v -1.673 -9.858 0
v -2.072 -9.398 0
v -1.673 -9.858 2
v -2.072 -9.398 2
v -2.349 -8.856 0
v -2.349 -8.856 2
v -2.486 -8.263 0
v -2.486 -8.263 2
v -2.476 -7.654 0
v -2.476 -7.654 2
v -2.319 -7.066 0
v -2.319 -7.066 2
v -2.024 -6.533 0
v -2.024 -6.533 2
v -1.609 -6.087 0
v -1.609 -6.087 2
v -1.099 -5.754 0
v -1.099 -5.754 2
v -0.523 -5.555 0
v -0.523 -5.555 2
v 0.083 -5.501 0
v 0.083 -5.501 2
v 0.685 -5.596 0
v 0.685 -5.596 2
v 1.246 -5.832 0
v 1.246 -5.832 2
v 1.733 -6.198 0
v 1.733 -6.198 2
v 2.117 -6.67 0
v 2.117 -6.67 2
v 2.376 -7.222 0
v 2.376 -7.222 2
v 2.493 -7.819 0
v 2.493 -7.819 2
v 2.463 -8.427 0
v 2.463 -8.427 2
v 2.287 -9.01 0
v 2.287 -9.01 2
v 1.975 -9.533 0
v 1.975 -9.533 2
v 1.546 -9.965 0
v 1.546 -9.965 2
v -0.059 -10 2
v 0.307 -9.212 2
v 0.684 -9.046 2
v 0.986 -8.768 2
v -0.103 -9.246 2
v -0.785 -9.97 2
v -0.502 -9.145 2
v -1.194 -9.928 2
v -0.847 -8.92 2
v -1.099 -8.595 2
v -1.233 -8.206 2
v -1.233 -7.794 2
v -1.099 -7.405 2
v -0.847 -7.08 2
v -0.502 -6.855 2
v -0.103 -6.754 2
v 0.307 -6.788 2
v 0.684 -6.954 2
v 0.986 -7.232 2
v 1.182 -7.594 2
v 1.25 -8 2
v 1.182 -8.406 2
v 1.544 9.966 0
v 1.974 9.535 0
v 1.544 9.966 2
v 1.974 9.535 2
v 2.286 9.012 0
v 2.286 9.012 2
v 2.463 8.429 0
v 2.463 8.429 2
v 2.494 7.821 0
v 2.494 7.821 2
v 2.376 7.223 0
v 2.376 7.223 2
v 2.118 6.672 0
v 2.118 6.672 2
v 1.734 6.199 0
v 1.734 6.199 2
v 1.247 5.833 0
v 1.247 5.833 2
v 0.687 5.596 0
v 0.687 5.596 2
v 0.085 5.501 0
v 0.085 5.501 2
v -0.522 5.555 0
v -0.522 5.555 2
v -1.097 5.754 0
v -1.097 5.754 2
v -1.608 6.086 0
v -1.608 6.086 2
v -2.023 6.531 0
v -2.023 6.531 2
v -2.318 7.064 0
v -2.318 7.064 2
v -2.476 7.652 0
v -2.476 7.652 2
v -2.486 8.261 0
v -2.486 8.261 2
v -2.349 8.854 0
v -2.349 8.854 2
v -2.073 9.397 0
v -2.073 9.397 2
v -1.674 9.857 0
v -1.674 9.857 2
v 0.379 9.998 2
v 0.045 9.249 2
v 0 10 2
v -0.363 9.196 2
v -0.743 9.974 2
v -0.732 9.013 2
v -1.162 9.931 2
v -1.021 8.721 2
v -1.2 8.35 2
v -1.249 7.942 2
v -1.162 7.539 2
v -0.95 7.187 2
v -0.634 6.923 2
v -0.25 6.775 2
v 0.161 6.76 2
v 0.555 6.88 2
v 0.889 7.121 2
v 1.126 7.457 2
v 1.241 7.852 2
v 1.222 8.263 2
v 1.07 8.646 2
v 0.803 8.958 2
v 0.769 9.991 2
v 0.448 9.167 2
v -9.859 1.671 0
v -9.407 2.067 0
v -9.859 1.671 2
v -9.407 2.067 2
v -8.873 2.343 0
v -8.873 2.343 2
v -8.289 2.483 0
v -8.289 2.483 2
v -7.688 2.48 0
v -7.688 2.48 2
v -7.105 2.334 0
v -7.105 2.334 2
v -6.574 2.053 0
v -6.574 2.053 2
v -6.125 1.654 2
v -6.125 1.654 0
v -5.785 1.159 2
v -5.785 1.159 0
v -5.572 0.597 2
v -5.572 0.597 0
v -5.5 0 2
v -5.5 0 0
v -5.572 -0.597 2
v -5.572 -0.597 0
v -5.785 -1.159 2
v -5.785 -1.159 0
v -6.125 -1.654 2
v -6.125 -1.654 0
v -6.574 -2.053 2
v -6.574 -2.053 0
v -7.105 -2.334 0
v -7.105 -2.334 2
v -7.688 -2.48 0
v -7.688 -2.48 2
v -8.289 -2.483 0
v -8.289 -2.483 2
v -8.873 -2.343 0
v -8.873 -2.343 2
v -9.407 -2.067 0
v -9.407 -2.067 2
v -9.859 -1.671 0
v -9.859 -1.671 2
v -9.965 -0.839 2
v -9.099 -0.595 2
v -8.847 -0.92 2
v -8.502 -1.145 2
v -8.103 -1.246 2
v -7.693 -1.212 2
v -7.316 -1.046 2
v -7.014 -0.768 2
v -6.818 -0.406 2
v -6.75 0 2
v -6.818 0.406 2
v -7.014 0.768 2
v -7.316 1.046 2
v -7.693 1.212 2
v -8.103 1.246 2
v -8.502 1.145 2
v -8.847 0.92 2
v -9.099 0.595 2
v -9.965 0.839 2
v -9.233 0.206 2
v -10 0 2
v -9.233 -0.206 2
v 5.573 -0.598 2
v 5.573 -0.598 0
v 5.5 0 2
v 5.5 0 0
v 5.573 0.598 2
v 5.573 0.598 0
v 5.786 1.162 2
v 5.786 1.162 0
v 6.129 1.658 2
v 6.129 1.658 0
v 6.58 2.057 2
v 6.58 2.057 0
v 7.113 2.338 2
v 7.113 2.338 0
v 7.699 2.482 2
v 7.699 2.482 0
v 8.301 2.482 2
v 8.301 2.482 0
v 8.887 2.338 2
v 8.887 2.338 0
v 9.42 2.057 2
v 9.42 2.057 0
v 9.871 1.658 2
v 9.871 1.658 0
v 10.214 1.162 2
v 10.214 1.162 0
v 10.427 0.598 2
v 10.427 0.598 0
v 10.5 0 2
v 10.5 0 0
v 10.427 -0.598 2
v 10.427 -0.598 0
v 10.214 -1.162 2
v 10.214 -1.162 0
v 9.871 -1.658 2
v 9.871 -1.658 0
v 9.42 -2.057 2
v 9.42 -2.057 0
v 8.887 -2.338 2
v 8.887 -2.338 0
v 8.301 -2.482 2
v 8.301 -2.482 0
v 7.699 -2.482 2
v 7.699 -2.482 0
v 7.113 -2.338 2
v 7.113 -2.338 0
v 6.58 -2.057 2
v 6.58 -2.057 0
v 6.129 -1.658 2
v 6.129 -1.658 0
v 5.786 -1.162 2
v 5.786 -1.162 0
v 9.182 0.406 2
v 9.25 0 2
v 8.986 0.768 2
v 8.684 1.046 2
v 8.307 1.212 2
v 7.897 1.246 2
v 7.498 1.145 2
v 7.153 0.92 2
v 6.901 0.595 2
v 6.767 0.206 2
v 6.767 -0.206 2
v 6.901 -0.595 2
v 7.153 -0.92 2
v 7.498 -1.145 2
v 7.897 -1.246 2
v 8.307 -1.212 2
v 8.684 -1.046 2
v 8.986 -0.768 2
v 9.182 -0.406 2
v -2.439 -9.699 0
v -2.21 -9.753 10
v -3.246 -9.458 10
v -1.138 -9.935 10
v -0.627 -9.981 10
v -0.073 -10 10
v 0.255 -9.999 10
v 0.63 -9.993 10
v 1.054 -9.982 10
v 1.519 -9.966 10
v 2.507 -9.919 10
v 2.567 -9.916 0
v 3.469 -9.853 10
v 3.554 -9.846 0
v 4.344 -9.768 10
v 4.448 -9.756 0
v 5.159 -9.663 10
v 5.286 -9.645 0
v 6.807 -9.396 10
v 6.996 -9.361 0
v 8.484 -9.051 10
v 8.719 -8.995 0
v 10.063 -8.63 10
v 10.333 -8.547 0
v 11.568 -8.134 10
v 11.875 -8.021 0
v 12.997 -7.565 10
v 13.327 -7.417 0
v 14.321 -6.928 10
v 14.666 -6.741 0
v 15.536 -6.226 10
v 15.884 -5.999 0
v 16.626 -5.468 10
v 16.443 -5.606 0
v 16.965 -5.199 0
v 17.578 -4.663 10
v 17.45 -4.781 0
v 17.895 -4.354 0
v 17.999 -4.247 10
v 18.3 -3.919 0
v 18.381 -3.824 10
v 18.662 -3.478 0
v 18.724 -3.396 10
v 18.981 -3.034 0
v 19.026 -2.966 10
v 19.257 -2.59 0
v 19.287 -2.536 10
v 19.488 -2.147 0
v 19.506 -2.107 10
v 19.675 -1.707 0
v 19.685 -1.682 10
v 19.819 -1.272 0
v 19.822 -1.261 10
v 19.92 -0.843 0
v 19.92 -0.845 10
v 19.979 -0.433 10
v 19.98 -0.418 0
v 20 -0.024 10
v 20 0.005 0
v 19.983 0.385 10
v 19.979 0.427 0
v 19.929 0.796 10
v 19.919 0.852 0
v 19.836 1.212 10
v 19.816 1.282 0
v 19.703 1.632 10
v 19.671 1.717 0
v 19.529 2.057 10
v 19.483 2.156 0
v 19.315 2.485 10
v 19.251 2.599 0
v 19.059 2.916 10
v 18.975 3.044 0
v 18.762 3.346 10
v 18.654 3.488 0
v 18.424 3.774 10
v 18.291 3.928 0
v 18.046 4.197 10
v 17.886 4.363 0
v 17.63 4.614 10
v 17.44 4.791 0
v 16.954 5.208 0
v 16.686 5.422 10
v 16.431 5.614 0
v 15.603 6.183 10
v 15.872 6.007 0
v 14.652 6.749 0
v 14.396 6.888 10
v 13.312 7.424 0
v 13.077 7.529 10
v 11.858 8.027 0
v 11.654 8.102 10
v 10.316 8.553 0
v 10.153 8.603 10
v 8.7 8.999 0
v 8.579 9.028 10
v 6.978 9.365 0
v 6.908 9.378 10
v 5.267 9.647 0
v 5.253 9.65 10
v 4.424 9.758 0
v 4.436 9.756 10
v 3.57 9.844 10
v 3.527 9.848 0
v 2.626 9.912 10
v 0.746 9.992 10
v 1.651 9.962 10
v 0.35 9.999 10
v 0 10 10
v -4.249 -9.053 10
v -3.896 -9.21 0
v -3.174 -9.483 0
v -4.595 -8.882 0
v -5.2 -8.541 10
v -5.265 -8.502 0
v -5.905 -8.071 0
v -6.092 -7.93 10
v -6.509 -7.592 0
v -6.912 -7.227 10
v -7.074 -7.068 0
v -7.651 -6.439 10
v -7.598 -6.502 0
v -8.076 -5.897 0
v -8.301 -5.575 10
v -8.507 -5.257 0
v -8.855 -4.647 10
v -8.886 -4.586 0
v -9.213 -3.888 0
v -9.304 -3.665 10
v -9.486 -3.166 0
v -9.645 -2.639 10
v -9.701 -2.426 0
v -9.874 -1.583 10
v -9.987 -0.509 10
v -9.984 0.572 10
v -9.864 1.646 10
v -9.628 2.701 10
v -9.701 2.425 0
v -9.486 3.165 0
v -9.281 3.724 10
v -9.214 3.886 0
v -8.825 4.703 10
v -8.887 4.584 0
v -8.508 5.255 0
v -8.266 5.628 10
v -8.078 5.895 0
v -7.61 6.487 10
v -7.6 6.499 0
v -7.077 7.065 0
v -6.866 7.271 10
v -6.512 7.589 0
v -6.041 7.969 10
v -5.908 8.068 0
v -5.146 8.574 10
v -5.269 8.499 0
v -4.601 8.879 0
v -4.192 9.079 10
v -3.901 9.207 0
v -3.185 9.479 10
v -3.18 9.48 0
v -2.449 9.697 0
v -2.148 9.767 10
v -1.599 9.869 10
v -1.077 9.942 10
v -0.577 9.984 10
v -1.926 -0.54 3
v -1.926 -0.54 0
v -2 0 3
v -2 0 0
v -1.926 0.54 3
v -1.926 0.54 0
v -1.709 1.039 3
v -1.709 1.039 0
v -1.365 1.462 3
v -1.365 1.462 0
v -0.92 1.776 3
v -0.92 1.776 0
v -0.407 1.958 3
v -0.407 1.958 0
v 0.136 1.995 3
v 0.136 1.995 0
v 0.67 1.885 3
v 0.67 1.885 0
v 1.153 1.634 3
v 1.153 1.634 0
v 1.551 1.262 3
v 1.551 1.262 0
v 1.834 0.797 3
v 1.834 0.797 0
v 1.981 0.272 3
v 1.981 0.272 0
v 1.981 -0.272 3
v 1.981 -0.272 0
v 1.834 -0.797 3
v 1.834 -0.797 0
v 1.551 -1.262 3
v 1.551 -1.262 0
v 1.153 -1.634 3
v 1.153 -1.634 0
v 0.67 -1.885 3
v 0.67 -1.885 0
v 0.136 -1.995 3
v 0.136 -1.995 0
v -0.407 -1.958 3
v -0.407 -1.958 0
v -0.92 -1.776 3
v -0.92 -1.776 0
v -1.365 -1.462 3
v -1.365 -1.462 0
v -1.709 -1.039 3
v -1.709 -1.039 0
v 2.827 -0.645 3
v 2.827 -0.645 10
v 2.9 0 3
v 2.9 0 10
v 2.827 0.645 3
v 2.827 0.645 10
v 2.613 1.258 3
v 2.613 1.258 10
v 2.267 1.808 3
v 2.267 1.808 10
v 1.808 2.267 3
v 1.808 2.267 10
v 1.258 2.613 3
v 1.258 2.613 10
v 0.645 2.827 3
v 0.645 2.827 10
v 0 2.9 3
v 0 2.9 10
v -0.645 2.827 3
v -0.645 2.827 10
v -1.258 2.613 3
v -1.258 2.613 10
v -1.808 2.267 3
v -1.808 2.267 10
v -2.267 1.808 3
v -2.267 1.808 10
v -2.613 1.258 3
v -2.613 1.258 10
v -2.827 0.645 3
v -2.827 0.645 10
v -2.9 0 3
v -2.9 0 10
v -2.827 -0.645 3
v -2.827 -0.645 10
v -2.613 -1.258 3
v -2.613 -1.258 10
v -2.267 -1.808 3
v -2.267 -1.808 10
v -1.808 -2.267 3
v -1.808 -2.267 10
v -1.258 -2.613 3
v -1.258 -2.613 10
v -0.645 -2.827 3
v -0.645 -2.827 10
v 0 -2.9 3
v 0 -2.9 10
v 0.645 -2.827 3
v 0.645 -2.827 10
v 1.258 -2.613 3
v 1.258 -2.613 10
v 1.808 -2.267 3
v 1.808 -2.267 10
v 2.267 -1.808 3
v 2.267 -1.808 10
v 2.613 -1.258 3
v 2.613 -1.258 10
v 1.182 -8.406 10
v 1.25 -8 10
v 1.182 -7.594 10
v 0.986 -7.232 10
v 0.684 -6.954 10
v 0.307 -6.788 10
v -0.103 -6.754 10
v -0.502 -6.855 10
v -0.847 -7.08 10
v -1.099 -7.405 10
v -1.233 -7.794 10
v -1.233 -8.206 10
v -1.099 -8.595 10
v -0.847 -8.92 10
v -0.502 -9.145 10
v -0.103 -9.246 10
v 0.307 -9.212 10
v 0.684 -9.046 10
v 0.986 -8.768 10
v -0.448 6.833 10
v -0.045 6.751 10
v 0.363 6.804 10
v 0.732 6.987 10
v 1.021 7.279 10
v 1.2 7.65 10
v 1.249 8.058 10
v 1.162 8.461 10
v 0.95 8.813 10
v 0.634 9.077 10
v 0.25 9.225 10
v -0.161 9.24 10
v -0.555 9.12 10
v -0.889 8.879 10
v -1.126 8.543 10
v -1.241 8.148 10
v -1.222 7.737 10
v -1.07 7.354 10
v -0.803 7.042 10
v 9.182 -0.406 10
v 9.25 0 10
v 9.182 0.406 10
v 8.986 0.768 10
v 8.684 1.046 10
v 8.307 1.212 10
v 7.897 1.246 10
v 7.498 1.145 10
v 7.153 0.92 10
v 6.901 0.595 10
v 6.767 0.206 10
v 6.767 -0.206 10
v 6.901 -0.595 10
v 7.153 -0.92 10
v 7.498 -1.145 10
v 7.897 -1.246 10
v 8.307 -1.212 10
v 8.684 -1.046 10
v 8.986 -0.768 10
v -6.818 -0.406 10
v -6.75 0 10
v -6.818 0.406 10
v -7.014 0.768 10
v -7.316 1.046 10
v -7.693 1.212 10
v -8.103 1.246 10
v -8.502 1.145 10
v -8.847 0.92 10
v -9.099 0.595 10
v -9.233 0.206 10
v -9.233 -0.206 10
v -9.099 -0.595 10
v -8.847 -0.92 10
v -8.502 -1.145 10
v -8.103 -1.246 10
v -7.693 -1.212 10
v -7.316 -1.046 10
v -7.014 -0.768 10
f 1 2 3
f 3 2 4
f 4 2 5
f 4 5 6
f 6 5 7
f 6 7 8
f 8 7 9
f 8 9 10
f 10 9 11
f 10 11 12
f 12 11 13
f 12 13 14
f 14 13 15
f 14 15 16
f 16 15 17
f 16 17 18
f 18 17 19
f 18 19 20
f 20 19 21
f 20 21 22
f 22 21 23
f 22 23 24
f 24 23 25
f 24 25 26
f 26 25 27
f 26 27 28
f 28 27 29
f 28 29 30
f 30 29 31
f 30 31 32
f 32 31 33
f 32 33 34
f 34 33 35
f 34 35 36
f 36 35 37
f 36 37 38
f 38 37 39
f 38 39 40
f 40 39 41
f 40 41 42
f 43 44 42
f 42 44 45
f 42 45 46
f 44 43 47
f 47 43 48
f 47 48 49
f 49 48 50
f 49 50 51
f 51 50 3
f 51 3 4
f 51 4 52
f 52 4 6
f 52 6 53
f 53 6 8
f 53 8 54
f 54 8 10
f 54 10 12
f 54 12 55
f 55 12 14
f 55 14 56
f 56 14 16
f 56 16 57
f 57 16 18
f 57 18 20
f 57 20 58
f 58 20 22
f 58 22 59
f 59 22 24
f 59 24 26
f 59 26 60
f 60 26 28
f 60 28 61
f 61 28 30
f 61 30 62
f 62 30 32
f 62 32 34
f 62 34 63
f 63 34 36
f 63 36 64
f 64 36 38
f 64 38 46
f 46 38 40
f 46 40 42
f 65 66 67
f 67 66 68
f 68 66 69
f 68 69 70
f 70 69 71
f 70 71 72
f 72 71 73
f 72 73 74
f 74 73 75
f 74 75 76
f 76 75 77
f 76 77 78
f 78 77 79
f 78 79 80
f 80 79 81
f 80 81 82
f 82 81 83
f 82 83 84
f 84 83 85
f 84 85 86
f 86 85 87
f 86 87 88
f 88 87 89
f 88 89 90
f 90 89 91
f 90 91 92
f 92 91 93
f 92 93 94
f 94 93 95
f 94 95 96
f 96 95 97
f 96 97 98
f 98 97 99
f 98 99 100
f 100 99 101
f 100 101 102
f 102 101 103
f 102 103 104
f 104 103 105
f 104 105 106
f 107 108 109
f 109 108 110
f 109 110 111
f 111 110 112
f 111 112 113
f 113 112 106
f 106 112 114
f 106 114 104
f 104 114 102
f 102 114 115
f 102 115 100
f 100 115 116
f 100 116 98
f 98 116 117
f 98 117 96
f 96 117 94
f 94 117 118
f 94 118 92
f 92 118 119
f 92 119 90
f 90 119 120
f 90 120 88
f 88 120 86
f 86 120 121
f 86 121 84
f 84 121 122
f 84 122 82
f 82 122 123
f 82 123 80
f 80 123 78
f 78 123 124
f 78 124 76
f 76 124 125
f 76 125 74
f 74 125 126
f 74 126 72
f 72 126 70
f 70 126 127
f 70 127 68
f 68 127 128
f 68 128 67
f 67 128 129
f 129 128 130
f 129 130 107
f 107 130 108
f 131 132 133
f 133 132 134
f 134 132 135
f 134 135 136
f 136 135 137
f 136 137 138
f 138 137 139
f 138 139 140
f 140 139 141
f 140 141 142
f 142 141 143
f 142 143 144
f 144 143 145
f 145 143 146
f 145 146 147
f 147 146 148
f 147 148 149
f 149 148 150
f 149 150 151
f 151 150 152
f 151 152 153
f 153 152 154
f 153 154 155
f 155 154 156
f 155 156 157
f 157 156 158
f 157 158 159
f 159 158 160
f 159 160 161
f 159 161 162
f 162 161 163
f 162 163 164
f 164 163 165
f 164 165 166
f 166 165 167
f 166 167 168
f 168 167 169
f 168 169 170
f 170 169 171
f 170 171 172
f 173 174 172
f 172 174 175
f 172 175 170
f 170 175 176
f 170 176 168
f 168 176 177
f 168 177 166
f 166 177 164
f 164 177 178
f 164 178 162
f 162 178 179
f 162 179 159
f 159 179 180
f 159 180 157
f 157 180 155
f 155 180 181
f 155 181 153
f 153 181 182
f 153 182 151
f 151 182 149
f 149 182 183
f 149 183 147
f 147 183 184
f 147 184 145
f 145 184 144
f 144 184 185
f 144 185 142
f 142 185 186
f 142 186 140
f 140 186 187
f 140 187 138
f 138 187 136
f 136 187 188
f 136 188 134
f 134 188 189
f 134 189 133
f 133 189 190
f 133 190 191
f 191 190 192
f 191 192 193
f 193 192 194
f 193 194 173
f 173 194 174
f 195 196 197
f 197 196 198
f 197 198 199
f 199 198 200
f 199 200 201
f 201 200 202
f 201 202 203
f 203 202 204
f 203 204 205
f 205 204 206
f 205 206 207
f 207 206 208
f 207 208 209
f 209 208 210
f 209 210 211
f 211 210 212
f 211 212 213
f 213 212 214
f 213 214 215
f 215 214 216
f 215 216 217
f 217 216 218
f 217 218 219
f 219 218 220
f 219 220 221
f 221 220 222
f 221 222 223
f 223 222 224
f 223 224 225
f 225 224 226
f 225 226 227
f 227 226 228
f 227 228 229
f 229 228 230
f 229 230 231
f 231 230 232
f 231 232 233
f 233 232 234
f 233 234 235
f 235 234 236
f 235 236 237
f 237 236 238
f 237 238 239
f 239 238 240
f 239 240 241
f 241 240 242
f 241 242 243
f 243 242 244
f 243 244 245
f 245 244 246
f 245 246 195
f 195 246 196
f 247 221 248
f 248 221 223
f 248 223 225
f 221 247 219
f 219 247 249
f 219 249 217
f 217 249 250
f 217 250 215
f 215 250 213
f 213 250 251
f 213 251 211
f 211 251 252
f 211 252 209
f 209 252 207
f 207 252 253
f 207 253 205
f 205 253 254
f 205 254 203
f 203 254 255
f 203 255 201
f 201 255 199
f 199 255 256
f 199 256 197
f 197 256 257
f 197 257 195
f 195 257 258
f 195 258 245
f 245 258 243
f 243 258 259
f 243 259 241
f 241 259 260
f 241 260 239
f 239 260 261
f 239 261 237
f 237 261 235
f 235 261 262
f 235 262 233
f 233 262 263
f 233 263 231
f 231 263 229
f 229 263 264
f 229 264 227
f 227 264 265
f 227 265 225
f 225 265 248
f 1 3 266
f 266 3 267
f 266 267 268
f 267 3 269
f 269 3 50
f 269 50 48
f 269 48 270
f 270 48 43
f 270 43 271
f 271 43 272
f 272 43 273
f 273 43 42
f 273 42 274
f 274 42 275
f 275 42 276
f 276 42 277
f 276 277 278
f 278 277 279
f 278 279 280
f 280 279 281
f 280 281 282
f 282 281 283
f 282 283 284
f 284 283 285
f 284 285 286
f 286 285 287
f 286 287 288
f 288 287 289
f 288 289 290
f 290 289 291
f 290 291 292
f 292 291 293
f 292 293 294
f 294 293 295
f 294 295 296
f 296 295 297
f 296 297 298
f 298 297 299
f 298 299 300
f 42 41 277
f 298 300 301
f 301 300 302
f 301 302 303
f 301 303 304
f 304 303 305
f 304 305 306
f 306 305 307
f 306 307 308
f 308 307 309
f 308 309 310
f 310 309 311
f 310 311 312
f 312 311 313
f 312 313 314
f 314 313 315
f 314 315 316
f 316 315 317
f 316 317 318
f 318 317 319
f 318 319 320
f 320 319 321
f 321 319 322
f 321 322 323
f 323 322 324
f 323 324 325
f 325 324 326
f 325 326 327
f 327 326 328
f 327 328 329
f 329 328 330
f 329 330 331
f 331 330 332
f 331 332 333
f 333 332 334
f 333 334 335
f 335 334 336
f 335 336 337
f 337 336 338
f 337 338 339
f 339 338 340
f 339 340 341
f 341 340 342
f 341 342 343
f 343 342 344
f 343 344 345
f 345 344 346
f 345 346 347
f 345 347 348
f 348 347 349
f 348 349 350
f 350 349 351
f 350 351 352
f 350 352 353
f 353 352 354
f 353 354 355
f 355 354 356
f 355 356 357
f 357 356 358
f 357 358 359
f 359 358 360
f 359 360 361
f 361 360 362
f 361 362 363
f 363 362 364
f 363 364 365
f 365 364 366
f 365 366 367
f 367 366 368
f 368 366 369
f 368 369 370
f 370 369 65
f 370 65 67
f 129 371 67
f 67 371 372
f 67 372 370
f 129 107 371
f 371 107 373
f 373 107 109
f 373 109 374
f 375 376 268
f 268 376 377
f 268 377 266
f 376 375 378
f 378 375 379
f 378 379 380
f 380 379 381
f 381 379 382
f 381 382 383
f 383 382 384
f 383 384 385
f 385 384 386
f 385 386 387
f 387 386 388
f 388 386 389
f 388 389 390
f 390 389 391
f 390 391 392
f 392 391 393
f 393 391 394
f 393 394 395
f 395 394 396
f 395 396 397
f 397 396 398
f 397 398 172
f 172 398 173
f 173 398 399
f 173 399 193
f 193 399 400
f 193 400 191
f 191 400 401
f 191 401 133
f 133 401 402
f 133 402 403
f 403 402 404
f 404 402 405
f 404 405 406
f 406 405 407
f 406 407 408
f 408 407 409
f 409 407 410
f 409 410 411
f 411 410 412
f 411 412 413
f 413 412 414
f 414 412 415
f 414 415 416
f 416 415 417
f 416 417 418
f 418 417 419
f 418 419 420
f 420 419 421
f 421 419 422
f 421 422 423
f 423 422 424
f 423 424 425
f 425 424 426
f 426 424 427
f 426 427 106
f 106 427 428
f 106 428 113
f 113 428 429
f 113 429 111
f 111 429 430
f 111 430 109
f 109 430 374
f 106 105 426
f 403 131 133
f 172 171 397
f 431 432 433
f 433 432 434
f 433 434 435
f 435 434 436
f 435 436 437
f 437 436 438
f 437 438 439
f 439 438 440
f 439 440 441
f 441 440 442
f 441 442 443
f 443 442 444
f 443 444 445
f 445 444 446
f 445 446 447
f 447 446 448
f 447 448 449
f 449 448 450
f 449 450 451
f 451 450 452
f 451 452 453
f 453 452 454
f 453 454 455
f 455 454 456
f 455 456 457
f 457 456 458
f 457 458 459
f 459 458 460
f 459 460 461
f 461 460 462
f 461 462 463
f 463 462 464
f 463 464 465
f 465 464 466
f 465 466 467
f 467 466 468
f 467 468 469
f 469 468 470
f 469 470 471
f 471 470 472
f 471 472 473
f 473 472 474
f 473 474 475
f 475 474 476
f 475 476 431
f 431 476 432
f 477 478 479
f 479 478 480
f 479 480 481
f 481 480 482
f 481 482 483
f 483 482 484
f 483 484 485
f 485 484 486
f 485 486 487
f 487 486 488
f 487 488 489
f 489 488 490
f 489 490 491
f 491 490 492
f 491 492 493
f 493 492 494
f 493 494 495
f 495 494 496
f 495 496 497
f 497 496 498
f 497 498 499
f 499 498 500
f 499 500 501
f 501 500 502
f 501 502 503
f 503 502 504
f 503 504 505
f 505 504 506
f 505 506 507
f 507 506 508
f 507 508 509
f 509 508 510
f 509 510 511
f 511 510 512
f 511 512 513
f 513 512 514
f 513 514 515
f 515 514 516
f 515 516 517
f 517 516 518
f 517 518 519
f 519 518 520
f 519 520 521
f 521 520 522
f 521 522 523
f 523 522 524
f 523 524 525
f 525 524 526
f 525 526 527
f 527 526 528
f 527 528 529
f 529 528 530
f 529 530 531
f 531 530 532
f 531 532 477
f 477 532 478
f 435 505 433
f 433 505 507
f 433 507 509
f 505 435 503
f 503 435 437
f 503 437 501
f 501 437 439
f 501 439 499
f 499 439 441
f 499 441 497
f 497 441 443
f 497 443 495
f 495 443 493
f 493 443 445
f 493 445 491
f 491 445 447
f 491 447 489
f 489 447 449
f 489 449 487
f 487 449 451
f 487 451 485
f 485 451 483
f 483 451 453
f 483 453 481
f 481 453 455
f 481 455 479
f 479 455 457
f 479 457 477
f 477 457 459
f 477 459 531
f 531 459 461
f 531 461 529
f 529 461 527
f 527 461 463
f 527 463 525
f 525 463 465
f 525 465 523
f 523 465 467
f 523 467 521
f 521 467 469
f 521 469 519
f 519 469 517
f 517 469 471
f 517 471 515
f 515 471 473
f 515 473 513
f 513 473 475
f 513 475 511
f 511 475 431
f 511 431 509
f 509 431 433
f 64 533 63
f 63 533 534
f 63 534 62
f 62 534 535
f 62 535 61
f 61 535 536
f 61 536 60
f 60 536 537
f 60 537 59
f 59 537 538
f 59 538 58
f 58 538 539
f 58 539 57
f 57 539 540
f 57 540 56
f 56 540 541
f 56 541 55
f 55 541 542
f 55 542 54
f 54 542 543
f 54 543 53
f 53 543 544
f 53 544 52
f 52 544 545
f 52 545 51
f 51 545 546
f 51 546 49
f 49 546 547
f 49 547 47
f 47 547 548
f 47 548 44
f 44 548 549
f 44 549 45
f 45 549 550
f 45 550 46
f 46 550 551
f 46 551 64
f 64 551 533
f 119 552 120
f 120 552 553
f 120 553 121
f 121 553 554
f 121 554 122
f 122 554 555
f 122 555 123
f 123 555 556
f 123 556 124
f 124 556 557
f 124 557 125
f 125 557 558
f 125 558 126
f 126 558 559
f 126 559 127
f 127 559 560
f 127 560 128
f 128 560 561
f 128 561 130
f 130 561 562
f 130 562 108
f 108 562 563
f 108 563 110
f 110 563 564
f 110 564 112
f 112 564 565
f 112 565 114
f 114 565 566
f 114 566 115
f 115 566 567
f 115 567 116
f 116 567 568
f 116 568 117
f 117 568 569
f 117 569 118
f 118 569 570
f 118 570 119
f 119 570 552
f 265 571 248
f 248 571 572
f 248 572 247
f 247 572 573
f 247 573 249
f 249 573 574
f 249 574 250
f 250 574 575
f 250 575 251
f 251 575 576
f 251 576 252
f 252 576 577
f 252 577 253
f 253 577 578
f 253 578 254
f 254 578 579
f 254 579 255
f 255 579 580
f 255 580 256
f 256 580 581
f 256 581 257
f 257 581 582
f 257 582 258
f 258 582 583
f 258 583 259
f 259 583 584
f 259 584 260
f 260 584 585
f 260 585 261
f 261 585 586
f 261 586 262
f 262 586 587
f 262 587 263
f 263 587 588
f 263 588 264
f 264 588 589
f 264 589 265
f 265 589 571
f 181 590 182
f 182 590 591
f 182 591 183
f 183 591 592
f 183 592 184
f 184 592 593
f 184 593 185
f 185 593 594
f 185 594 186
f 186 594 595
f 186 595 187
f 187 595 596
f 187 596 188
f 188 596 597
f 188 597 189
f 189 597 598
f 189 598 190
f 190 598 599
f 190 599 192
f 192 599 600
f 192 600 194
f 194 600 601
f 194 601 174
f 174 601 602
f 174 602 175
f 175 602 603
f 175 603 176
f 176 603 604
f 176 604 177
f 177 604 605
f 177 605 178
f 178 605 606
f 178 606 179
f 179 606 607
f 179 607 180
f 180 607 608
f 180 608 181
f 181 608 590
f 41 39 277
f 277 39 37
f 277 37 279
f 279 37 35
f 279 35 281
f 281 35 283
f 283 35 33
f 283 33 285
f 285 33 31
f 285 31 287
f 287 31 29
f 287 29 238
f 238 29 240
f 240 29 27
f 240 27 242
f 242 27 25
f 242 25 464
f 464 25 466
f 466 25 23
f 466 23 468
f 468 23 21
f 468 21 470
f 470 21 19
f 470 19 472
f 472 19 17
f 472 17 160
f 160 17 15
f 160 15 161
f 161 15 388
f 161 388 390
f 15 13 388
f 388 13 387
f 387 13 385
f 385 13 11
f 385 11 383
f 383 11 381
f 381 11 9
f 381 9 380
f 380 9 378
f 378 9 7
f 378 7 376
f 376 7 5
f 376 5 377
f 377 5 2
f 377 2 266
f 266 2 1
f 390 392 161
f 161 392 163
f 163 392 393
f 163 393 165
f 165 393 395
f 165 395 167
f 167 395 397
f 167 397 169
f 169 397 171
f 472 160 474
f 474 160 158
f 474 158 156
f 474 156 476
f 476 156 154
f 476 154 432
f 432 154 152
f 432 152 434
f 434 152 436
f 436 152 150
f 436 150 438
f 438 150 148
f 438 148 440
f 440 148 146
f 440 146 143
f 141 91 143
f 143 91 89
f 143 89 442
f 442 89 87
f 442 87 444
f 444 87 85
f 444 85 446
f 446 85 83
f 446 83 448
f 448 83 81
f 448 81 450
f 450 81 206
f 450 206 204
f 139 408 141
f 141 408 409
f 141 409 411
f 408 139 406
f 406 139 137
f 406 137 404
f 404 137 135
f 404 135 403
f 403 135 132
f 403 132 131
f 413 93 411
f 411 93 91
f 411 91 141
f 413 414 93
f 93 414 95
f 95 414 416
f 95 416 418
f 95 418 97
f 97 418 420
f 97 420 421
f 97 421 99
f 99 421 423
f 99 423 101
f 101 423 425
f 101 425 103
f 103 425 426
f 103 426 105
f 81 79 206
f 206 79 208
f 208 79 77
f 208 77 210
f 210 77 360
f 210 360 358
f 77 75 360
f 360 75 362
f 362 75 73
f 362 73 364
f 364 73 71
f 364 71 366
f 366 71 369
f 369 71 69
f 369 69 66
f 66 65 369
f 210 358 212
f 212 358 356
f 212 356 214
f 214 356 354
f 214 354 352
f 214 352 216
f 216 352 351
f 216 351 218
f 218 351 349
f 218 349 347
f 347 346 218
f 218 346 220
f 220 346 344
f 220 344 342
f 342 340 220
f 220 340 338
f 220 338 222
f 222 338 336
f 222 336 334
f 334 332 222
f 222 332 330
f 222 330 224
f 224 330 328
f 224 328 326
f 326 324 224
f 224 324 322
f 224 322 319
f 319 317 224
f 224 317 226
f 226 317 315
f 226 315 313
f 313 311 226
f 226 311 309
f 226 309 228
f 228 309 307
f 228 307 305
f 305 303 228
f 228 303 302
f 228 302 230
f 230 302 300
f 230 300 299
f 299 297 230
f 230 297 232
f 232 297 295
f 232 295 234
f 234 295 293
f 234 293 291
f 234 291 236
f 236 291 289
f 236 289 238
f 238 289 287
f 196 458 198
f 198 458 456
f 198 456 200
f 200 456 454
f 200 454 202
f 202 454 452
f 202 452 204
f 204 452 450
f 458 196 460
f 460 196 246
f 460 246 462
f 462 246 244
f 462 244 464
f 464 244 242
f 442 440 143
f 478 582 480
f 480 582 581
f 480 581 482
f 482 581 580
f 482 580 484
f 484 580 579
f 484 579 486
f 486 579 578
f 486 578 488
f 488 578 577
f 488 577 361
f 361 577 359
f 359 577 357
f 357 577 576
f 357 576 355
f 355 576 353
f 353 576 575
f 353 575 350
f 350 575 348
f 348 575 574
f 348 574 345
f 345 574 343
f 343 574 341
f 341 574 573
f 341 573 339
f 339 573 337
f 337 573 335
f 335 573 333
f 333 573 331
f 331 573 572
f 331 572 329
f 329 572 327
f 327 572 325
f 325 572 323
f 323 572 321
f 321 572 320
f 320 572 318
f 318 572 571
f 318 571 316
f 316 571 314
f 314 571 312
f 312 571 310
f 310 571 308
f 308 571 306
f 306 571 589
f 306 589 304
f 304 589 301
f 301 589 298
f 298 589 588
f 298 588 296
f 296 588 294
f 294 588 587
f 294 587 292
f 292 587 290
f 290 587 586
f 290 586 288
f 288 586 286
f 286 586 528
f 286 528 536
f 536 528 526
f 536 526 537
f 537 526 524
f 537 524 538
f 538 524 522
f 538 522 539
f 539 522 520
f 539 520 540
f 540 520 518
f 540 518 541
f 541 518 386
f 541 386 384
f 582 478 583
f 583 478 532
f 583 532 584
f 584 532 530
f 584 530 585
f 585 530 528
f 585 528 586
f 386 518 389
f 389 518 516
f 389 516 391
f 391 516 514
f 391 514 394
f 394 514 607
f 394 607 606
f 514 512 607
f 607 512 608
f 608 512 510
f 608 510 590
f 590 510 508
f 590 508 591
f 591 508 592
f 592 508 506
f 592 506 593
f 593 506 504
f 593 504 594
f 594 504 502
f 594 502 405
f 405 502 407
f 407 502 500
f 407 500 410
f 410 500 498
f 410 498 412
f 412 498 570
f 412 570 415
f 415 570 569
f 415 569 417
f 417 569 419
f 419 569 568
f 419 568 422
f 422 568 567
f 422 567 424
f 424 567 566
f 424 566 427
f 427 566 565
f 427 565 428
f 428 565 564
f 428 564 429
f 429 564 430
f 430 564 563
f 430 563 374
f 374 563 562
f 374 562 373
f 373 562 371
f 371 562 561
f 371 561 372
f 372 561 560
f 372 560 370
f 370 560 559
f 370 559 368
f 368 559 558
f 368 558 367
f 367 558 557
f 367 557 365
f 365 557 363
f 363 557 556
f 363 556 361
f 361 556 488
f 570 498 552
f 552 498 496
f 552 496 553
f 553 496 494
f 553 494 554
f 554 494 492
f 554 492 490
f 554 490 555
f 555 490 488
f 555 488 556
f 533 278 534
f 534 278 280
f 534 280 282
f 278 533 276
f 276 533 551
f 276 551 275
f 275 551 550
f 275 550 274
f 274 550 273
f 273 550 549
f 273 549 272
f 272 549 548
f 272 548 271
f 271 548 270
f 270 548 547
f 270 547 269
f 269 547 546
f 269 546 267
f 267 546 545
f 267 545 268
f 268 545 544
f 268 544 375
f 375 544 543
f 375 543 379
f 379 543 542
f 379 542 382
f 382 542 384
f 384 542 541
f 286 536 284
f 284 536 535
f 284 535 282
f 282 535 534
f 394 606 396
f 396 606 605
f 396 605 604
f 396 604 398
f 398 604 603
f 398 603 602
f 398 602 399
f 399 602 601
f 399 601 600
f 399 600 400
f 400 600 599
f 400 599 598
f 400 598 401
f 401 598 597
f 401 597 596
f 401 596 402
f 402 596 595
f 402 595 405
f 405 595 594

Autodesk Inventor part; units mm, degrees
ref_plane "YZ Plane" through (0, 0, 0) normal (1, 0, 0) x (0, 1, 0)
ref_plane "XZ Plane" through (0, 0, 0) normal (0, 1, 0) x (-1, 0, 0)
ref_plane "XY Plane" through (0, 0, 0) normal (0, 0, 1) x (1, 0, 0)
sketch "Основной эскиз" plane through (0, 0, 0) normal (0, 0, 1) x (1, 0, 0)
  spline S0 degree 5 poles (0, 10) (0.4903, 10.0023) (1.5101, 9.9783) (3.7169, 9.8863) (5.2913, 9.6625) (8.0626, 9.2068) (10.1701, 8.6378) (12.2795, 7.918) (14.0718, 7.1052) (15.6055, 6.2325) (16.8611, 5.3335) (17.8612, 4.439) (18.6277, 3.5746) (19.1912, 2.7582) (19.584, 1.9987) (19.8373, 1.2947) (19.9774, 0.635) (20.0219, 0) (19.9774, -0.635) (19.8373, -1.2947) (19.584, -1.9987) (19.1912, -2.7582) (18.6277, -3.5746) (17.8613, -4.439) (16.8611, -5.3335) (15.6056, -6.2325) (14.0715, -7.1052) (12.2803, -7.918) (10.1679, -8.6377) (8.0096, -9.223) (5.3353, -9.6504) (3.5804, -9.9121) (0.1193, -10.023) (-0.6801, -10.0105) (-2.0206, -9.8336) (-3.0596, -9.5465) (-4.0845, -9.1604) (-5.0112, -8.6841) (-5.8951, -8.1124) (-6.7092, -7.4519) (-7.4521, -6.7097) (-8.1123, -5.894) (-8.6841, -5.0137) (-9.1605, -4.0785) (-9.5367, -3.0987) (-9.8083, -2.0848) (-9.9725, -1.0482) (-10.0275, 0) (-9.9725, 1.0482) (-9.8083, 2.0848) (-9.5367, 3.0987) (-9.1605, 4.0785) (-8.6841, 5.0137) (-8.1122, 5.894) (-7.4522, 6.7097) (-6.7088, 7.4519) (-5.8961, 8.1123) (-5.0089, 8.6841) (-4.0898, 9.1603) (-3.1132, 9.5222) (-2.1817, 9.7972) (-1.2086, 9.9363) (-0.7293, 9.9855) (-0.3038, 9.9986) (0, 10) knots 0 0 0 0 0 0 0.029305 0.048463 0.072014 0.094795 0.11662 0.137346 0.156878 0.175161 0.192184 0.207975 0.22261 0.236216 0.248977 0.261135 0.272978 0.28482 0.296978 0.309739 0.323345 0.33798 0.353771 0.370794 0.389078 0.408609 0.429336 0.45116 0.473941 0.497492 0.519678 0.540296 0.559184 0.576225 0.59136 0.606495 0.621629 0.636764 0.651899 0.667034 0.682169 0.697304 0.712438 0.727573 0.742708 0.757843 0.772978 0.788112 0.803247 0.818382 0.833517 0.848652 0.863787 0.878921 0.894056 0.909191 0.924326 0.939461 0.954596 0.96973 0.981838 1 1 1 1 1 1
  point P0 (5.4767, 9.6166)
  point P1 (8.0209, 9.1553)
  point P2 (10.3525, 8.5413)
  point P3 (12.4298, 7.8038)
  point P4 (14.229, 6.9759)
  point P5 (15.7425, 6.0929)
  point P6 (16.977, 5.1896)
  point P7 (17.9502, 4.2975)
  point P8 (18.6889, 3.4429)
  point P9 (19.2256, 2.6435)
  point P10 (19.5949, 1.9073)
  point P11 (19.8303, 1.2315)
  point P12 (19.9592, 0.6029)
  point P13 (20, 0)
  point P14 (19.9592, -0.6029)
  point P15 (19.8303, -1.2315)
  point P16 (19.5949, -1.9073)
  point P17 (19.2256, -2.6435)
  point P18 (18.6889, -3.4429)
  point P19 (17.9502, -4.2975)
  point P20 (16.977, -5.1896)
  point P21 (15.7425, -6.0929)
  point P22 (14.229, -6.9759)
  point P23 (12.4298, -7.8038)
  point P24 (10.3525, -8.5413)
  point P25 (8.0209, -9.1553)
  point P26 (5.4767, -9.6166)
  point P27 (2.7788, -9.9029)
  point P28 (0, -10)
  point P29 (-1.0453, -9.9452)
  point P30 (-2.0791, -9.7815)
  point P31 (-3.0902, -9.5106)
  point P32 (-4.0674, -9.1355)
  point P33 (-5, -8.6603)
  point P34 (-5.8779, -8.0902)
  point P35 (-6.6913, -7.4314)
  point P36 (-7.4314, -6.6913)
  point P37 (-8.0902, -5.8779)
  point P38 (-8.6603, -5)
  point P39 (-9.1355, -4.0674)
  point P40 (-9.5106, -3.0902)
  point P41 (-9.7815, -2.0791)
  point P42 (-9.9452, -1.0453)
  point P43 (-10, 0)
  point P44 (-9.9452, 1.0453)
  point P45 (-9.7815, 2.0791)
  point P46 (-9.5106, 3.0902)
  point P47 (-9.1355, 4.0674)
  point P48 (-8.6603, 5)
  point P49 (-8.0902, 5.8779)
  point P50 (-7.4314, 6.6913)
  point P51 (-6.6913, 7.4314)
  point P52 (-5.8779, 8.0902)
  point P53 (-5, 8.6603)
  point P54 (-4.0674, 9.1355)
  point P55 (-3.0902, 9.5106)
  point P56 (-2.0791, 9.7815)
  point P57 (-1.0453, 9.9452)
extrude "Кулачок" add sketch "Основной эскиз" along normal blind 10
sketch "Эскиз2" plane through (0, 0, 10) normal (0, 0, 1) x (1, 0, 0)
  arc A0 (-0.25, 9.2247) -> (0.25, 9.2247) centre (0, 8) ccw
  line L0 (-0.25, 10.9972) -> (-0.25, 9.2247)
  arc A1 (-0.25, 10.9972) -> (-1.1469, -10.94) centre (0, 0) ccw
  line L1 (-1.1469, -10.6297) -> (-1.1469, -10.94)
  line L2 (-0.8473, -10.6297) -> (-1.1469, -10.6297)
  line L3 (-0.8473, -10.9673) -> (-0.8473, -10.6297)
  arc A2 (-0.8473, -10.9673) -> (0.8535, -10.9668) centre (0, 0) ccw
  line L4 (0.8535, -10.6297) -> (0.8535, -10.9668)
  line L5 (1.1541, -10.6297) -> (0.8535, -10.6297)
  line L6 (1.1541, -10.9393) -> (1.1541, -10.6297)
  arc A3 (1.1541, -10.9393) -> (0.25, 10.9972) centre (0, 0) ccw
  line L7 (0.25, 9.2247) -> (0.25, 10.9972)
  circle A4 centre (8, 0) radius 1.25
  circle A5 centre (0, -8) radius 1.25
  circle A6 centre (-8, 0) radius 1.25
  circle A7 centre (0, -5.5) radius 0.75
  circle A8 centre (4.7631, 2.75) radius 0.75
  circle A9 centre (-4.7631, 2.75) radius 0.75
  circle A10 centre (0, 0) radius 2.9
  arc A11 (0.25, 9.2247) -> (-0.25, 9.2247) centre (0, 8) ccw
extrude "Выдавливание2" cut sketch "Эскиз2" against normal blind 10 contours A11 A0 | A4 | A5 | A6
sketch "Эскиз3" plane through (0, 0, 10) normal (0, 0, 1) x (1, 0, 0)
  arc A0 (-0.25, 9.2247) -> (0.25, 9.2247) centre (0, 8) ccw
  line L0 (-0.25, 10.9972) -> (-0.25, 9.2247)
  arc A1 (-0.25, 10.9972) -> (-1.1469, -10.94) centre (0, 0) ccw
  line L1 (-1.1469, -10.6297) -> (-1.1469, -10.94)
  line L2 (-0.8473, -10.6297) -> (-1.1469, -10.6297)
  line L3 (-0.8473, -10.9673) -> (-0.8473, -10.6297)
  arc A2 (-0.8473, -10.9673) -> (0.8535, -10.9668) centre (0, 0) ccw
  line L4 (0.8535, -10.6297) -> (0.8535, -10.9668)
  line L5 (1.1541, -10.6297) -> (0.8535, -10.6297)
  line L6 (1.1541, -10.9393) -> (1.1541, -10.6297)
  arc A3 (1.1541, -10.9393) -> (0.25, 10.9972) centre (0, 0) ccw
  line L7 (0.25, 9.2247) -> (0.25, 10.9972)
  circle A4 centre (8, 0) radius 1.25
  circle A5 centre (0, -8) radius 1.25
  circle A6 centre (-8, 0) radius 1.25
  circle A7 centre (0, -5.5) radius 0.75
  circle A8 centre (4.7631, 2.75) radius 0.75
  circle A9 centre (-4.7631, 2.75) radius 0.75
  circle A10 centre (0, 0) radius 2.9
  arc A11 (0.25, 9.2247) -> (-0.25, 9.2247) centre (0, 8) ccw
extrude "Выдавливание3" cut sketch "Эскиз3" against normal blind 7 contours A10
sketch "Эскиз4" plane through (0, 0, 0) normal (0, 0, -1) x (-1, 0, 0)
  circle A0 centre (0, 0) radius 2
  dimension "d8" = 4
extrude "Выдавливание4" cut sketch "Эскиз4" against normal blind 7
sketch "Эскиз5" plane through (0, 0, 0) normal (0, 0, -1) x (-1, 0, 0)
  circle A0 centre (0, 8) radius 1.25 projected
  circle A1 centre (0, 8) radius 2.5
  circle A2 centre (8, 0) radius 1.25 projected
  circle A3 centre (8, 0) radius 2.5
  circle A4 centre (0, -8) radius 1.25 projected
  circle A5 centre (0, -8) radius 2.5
  circle A6 centre (-8, 0) radius 1.25 projected
  circle A7 centre (-8, 0) radius 2.5
  point P0 (0, 0)
  dimension "d11" = 5
  dimension "d12" = 5
  dimension "d13" = 5
  dimension "d14" = 5
extrude "Выдавливание5" cut sketch "Эскиз5" against normal blind 2 contours A0 | A1 | A2 | A3 | A4 | A5 | A6 | A7
properties part number "Дисковый кулачок" material "Stainless Steel, Austenitic"
